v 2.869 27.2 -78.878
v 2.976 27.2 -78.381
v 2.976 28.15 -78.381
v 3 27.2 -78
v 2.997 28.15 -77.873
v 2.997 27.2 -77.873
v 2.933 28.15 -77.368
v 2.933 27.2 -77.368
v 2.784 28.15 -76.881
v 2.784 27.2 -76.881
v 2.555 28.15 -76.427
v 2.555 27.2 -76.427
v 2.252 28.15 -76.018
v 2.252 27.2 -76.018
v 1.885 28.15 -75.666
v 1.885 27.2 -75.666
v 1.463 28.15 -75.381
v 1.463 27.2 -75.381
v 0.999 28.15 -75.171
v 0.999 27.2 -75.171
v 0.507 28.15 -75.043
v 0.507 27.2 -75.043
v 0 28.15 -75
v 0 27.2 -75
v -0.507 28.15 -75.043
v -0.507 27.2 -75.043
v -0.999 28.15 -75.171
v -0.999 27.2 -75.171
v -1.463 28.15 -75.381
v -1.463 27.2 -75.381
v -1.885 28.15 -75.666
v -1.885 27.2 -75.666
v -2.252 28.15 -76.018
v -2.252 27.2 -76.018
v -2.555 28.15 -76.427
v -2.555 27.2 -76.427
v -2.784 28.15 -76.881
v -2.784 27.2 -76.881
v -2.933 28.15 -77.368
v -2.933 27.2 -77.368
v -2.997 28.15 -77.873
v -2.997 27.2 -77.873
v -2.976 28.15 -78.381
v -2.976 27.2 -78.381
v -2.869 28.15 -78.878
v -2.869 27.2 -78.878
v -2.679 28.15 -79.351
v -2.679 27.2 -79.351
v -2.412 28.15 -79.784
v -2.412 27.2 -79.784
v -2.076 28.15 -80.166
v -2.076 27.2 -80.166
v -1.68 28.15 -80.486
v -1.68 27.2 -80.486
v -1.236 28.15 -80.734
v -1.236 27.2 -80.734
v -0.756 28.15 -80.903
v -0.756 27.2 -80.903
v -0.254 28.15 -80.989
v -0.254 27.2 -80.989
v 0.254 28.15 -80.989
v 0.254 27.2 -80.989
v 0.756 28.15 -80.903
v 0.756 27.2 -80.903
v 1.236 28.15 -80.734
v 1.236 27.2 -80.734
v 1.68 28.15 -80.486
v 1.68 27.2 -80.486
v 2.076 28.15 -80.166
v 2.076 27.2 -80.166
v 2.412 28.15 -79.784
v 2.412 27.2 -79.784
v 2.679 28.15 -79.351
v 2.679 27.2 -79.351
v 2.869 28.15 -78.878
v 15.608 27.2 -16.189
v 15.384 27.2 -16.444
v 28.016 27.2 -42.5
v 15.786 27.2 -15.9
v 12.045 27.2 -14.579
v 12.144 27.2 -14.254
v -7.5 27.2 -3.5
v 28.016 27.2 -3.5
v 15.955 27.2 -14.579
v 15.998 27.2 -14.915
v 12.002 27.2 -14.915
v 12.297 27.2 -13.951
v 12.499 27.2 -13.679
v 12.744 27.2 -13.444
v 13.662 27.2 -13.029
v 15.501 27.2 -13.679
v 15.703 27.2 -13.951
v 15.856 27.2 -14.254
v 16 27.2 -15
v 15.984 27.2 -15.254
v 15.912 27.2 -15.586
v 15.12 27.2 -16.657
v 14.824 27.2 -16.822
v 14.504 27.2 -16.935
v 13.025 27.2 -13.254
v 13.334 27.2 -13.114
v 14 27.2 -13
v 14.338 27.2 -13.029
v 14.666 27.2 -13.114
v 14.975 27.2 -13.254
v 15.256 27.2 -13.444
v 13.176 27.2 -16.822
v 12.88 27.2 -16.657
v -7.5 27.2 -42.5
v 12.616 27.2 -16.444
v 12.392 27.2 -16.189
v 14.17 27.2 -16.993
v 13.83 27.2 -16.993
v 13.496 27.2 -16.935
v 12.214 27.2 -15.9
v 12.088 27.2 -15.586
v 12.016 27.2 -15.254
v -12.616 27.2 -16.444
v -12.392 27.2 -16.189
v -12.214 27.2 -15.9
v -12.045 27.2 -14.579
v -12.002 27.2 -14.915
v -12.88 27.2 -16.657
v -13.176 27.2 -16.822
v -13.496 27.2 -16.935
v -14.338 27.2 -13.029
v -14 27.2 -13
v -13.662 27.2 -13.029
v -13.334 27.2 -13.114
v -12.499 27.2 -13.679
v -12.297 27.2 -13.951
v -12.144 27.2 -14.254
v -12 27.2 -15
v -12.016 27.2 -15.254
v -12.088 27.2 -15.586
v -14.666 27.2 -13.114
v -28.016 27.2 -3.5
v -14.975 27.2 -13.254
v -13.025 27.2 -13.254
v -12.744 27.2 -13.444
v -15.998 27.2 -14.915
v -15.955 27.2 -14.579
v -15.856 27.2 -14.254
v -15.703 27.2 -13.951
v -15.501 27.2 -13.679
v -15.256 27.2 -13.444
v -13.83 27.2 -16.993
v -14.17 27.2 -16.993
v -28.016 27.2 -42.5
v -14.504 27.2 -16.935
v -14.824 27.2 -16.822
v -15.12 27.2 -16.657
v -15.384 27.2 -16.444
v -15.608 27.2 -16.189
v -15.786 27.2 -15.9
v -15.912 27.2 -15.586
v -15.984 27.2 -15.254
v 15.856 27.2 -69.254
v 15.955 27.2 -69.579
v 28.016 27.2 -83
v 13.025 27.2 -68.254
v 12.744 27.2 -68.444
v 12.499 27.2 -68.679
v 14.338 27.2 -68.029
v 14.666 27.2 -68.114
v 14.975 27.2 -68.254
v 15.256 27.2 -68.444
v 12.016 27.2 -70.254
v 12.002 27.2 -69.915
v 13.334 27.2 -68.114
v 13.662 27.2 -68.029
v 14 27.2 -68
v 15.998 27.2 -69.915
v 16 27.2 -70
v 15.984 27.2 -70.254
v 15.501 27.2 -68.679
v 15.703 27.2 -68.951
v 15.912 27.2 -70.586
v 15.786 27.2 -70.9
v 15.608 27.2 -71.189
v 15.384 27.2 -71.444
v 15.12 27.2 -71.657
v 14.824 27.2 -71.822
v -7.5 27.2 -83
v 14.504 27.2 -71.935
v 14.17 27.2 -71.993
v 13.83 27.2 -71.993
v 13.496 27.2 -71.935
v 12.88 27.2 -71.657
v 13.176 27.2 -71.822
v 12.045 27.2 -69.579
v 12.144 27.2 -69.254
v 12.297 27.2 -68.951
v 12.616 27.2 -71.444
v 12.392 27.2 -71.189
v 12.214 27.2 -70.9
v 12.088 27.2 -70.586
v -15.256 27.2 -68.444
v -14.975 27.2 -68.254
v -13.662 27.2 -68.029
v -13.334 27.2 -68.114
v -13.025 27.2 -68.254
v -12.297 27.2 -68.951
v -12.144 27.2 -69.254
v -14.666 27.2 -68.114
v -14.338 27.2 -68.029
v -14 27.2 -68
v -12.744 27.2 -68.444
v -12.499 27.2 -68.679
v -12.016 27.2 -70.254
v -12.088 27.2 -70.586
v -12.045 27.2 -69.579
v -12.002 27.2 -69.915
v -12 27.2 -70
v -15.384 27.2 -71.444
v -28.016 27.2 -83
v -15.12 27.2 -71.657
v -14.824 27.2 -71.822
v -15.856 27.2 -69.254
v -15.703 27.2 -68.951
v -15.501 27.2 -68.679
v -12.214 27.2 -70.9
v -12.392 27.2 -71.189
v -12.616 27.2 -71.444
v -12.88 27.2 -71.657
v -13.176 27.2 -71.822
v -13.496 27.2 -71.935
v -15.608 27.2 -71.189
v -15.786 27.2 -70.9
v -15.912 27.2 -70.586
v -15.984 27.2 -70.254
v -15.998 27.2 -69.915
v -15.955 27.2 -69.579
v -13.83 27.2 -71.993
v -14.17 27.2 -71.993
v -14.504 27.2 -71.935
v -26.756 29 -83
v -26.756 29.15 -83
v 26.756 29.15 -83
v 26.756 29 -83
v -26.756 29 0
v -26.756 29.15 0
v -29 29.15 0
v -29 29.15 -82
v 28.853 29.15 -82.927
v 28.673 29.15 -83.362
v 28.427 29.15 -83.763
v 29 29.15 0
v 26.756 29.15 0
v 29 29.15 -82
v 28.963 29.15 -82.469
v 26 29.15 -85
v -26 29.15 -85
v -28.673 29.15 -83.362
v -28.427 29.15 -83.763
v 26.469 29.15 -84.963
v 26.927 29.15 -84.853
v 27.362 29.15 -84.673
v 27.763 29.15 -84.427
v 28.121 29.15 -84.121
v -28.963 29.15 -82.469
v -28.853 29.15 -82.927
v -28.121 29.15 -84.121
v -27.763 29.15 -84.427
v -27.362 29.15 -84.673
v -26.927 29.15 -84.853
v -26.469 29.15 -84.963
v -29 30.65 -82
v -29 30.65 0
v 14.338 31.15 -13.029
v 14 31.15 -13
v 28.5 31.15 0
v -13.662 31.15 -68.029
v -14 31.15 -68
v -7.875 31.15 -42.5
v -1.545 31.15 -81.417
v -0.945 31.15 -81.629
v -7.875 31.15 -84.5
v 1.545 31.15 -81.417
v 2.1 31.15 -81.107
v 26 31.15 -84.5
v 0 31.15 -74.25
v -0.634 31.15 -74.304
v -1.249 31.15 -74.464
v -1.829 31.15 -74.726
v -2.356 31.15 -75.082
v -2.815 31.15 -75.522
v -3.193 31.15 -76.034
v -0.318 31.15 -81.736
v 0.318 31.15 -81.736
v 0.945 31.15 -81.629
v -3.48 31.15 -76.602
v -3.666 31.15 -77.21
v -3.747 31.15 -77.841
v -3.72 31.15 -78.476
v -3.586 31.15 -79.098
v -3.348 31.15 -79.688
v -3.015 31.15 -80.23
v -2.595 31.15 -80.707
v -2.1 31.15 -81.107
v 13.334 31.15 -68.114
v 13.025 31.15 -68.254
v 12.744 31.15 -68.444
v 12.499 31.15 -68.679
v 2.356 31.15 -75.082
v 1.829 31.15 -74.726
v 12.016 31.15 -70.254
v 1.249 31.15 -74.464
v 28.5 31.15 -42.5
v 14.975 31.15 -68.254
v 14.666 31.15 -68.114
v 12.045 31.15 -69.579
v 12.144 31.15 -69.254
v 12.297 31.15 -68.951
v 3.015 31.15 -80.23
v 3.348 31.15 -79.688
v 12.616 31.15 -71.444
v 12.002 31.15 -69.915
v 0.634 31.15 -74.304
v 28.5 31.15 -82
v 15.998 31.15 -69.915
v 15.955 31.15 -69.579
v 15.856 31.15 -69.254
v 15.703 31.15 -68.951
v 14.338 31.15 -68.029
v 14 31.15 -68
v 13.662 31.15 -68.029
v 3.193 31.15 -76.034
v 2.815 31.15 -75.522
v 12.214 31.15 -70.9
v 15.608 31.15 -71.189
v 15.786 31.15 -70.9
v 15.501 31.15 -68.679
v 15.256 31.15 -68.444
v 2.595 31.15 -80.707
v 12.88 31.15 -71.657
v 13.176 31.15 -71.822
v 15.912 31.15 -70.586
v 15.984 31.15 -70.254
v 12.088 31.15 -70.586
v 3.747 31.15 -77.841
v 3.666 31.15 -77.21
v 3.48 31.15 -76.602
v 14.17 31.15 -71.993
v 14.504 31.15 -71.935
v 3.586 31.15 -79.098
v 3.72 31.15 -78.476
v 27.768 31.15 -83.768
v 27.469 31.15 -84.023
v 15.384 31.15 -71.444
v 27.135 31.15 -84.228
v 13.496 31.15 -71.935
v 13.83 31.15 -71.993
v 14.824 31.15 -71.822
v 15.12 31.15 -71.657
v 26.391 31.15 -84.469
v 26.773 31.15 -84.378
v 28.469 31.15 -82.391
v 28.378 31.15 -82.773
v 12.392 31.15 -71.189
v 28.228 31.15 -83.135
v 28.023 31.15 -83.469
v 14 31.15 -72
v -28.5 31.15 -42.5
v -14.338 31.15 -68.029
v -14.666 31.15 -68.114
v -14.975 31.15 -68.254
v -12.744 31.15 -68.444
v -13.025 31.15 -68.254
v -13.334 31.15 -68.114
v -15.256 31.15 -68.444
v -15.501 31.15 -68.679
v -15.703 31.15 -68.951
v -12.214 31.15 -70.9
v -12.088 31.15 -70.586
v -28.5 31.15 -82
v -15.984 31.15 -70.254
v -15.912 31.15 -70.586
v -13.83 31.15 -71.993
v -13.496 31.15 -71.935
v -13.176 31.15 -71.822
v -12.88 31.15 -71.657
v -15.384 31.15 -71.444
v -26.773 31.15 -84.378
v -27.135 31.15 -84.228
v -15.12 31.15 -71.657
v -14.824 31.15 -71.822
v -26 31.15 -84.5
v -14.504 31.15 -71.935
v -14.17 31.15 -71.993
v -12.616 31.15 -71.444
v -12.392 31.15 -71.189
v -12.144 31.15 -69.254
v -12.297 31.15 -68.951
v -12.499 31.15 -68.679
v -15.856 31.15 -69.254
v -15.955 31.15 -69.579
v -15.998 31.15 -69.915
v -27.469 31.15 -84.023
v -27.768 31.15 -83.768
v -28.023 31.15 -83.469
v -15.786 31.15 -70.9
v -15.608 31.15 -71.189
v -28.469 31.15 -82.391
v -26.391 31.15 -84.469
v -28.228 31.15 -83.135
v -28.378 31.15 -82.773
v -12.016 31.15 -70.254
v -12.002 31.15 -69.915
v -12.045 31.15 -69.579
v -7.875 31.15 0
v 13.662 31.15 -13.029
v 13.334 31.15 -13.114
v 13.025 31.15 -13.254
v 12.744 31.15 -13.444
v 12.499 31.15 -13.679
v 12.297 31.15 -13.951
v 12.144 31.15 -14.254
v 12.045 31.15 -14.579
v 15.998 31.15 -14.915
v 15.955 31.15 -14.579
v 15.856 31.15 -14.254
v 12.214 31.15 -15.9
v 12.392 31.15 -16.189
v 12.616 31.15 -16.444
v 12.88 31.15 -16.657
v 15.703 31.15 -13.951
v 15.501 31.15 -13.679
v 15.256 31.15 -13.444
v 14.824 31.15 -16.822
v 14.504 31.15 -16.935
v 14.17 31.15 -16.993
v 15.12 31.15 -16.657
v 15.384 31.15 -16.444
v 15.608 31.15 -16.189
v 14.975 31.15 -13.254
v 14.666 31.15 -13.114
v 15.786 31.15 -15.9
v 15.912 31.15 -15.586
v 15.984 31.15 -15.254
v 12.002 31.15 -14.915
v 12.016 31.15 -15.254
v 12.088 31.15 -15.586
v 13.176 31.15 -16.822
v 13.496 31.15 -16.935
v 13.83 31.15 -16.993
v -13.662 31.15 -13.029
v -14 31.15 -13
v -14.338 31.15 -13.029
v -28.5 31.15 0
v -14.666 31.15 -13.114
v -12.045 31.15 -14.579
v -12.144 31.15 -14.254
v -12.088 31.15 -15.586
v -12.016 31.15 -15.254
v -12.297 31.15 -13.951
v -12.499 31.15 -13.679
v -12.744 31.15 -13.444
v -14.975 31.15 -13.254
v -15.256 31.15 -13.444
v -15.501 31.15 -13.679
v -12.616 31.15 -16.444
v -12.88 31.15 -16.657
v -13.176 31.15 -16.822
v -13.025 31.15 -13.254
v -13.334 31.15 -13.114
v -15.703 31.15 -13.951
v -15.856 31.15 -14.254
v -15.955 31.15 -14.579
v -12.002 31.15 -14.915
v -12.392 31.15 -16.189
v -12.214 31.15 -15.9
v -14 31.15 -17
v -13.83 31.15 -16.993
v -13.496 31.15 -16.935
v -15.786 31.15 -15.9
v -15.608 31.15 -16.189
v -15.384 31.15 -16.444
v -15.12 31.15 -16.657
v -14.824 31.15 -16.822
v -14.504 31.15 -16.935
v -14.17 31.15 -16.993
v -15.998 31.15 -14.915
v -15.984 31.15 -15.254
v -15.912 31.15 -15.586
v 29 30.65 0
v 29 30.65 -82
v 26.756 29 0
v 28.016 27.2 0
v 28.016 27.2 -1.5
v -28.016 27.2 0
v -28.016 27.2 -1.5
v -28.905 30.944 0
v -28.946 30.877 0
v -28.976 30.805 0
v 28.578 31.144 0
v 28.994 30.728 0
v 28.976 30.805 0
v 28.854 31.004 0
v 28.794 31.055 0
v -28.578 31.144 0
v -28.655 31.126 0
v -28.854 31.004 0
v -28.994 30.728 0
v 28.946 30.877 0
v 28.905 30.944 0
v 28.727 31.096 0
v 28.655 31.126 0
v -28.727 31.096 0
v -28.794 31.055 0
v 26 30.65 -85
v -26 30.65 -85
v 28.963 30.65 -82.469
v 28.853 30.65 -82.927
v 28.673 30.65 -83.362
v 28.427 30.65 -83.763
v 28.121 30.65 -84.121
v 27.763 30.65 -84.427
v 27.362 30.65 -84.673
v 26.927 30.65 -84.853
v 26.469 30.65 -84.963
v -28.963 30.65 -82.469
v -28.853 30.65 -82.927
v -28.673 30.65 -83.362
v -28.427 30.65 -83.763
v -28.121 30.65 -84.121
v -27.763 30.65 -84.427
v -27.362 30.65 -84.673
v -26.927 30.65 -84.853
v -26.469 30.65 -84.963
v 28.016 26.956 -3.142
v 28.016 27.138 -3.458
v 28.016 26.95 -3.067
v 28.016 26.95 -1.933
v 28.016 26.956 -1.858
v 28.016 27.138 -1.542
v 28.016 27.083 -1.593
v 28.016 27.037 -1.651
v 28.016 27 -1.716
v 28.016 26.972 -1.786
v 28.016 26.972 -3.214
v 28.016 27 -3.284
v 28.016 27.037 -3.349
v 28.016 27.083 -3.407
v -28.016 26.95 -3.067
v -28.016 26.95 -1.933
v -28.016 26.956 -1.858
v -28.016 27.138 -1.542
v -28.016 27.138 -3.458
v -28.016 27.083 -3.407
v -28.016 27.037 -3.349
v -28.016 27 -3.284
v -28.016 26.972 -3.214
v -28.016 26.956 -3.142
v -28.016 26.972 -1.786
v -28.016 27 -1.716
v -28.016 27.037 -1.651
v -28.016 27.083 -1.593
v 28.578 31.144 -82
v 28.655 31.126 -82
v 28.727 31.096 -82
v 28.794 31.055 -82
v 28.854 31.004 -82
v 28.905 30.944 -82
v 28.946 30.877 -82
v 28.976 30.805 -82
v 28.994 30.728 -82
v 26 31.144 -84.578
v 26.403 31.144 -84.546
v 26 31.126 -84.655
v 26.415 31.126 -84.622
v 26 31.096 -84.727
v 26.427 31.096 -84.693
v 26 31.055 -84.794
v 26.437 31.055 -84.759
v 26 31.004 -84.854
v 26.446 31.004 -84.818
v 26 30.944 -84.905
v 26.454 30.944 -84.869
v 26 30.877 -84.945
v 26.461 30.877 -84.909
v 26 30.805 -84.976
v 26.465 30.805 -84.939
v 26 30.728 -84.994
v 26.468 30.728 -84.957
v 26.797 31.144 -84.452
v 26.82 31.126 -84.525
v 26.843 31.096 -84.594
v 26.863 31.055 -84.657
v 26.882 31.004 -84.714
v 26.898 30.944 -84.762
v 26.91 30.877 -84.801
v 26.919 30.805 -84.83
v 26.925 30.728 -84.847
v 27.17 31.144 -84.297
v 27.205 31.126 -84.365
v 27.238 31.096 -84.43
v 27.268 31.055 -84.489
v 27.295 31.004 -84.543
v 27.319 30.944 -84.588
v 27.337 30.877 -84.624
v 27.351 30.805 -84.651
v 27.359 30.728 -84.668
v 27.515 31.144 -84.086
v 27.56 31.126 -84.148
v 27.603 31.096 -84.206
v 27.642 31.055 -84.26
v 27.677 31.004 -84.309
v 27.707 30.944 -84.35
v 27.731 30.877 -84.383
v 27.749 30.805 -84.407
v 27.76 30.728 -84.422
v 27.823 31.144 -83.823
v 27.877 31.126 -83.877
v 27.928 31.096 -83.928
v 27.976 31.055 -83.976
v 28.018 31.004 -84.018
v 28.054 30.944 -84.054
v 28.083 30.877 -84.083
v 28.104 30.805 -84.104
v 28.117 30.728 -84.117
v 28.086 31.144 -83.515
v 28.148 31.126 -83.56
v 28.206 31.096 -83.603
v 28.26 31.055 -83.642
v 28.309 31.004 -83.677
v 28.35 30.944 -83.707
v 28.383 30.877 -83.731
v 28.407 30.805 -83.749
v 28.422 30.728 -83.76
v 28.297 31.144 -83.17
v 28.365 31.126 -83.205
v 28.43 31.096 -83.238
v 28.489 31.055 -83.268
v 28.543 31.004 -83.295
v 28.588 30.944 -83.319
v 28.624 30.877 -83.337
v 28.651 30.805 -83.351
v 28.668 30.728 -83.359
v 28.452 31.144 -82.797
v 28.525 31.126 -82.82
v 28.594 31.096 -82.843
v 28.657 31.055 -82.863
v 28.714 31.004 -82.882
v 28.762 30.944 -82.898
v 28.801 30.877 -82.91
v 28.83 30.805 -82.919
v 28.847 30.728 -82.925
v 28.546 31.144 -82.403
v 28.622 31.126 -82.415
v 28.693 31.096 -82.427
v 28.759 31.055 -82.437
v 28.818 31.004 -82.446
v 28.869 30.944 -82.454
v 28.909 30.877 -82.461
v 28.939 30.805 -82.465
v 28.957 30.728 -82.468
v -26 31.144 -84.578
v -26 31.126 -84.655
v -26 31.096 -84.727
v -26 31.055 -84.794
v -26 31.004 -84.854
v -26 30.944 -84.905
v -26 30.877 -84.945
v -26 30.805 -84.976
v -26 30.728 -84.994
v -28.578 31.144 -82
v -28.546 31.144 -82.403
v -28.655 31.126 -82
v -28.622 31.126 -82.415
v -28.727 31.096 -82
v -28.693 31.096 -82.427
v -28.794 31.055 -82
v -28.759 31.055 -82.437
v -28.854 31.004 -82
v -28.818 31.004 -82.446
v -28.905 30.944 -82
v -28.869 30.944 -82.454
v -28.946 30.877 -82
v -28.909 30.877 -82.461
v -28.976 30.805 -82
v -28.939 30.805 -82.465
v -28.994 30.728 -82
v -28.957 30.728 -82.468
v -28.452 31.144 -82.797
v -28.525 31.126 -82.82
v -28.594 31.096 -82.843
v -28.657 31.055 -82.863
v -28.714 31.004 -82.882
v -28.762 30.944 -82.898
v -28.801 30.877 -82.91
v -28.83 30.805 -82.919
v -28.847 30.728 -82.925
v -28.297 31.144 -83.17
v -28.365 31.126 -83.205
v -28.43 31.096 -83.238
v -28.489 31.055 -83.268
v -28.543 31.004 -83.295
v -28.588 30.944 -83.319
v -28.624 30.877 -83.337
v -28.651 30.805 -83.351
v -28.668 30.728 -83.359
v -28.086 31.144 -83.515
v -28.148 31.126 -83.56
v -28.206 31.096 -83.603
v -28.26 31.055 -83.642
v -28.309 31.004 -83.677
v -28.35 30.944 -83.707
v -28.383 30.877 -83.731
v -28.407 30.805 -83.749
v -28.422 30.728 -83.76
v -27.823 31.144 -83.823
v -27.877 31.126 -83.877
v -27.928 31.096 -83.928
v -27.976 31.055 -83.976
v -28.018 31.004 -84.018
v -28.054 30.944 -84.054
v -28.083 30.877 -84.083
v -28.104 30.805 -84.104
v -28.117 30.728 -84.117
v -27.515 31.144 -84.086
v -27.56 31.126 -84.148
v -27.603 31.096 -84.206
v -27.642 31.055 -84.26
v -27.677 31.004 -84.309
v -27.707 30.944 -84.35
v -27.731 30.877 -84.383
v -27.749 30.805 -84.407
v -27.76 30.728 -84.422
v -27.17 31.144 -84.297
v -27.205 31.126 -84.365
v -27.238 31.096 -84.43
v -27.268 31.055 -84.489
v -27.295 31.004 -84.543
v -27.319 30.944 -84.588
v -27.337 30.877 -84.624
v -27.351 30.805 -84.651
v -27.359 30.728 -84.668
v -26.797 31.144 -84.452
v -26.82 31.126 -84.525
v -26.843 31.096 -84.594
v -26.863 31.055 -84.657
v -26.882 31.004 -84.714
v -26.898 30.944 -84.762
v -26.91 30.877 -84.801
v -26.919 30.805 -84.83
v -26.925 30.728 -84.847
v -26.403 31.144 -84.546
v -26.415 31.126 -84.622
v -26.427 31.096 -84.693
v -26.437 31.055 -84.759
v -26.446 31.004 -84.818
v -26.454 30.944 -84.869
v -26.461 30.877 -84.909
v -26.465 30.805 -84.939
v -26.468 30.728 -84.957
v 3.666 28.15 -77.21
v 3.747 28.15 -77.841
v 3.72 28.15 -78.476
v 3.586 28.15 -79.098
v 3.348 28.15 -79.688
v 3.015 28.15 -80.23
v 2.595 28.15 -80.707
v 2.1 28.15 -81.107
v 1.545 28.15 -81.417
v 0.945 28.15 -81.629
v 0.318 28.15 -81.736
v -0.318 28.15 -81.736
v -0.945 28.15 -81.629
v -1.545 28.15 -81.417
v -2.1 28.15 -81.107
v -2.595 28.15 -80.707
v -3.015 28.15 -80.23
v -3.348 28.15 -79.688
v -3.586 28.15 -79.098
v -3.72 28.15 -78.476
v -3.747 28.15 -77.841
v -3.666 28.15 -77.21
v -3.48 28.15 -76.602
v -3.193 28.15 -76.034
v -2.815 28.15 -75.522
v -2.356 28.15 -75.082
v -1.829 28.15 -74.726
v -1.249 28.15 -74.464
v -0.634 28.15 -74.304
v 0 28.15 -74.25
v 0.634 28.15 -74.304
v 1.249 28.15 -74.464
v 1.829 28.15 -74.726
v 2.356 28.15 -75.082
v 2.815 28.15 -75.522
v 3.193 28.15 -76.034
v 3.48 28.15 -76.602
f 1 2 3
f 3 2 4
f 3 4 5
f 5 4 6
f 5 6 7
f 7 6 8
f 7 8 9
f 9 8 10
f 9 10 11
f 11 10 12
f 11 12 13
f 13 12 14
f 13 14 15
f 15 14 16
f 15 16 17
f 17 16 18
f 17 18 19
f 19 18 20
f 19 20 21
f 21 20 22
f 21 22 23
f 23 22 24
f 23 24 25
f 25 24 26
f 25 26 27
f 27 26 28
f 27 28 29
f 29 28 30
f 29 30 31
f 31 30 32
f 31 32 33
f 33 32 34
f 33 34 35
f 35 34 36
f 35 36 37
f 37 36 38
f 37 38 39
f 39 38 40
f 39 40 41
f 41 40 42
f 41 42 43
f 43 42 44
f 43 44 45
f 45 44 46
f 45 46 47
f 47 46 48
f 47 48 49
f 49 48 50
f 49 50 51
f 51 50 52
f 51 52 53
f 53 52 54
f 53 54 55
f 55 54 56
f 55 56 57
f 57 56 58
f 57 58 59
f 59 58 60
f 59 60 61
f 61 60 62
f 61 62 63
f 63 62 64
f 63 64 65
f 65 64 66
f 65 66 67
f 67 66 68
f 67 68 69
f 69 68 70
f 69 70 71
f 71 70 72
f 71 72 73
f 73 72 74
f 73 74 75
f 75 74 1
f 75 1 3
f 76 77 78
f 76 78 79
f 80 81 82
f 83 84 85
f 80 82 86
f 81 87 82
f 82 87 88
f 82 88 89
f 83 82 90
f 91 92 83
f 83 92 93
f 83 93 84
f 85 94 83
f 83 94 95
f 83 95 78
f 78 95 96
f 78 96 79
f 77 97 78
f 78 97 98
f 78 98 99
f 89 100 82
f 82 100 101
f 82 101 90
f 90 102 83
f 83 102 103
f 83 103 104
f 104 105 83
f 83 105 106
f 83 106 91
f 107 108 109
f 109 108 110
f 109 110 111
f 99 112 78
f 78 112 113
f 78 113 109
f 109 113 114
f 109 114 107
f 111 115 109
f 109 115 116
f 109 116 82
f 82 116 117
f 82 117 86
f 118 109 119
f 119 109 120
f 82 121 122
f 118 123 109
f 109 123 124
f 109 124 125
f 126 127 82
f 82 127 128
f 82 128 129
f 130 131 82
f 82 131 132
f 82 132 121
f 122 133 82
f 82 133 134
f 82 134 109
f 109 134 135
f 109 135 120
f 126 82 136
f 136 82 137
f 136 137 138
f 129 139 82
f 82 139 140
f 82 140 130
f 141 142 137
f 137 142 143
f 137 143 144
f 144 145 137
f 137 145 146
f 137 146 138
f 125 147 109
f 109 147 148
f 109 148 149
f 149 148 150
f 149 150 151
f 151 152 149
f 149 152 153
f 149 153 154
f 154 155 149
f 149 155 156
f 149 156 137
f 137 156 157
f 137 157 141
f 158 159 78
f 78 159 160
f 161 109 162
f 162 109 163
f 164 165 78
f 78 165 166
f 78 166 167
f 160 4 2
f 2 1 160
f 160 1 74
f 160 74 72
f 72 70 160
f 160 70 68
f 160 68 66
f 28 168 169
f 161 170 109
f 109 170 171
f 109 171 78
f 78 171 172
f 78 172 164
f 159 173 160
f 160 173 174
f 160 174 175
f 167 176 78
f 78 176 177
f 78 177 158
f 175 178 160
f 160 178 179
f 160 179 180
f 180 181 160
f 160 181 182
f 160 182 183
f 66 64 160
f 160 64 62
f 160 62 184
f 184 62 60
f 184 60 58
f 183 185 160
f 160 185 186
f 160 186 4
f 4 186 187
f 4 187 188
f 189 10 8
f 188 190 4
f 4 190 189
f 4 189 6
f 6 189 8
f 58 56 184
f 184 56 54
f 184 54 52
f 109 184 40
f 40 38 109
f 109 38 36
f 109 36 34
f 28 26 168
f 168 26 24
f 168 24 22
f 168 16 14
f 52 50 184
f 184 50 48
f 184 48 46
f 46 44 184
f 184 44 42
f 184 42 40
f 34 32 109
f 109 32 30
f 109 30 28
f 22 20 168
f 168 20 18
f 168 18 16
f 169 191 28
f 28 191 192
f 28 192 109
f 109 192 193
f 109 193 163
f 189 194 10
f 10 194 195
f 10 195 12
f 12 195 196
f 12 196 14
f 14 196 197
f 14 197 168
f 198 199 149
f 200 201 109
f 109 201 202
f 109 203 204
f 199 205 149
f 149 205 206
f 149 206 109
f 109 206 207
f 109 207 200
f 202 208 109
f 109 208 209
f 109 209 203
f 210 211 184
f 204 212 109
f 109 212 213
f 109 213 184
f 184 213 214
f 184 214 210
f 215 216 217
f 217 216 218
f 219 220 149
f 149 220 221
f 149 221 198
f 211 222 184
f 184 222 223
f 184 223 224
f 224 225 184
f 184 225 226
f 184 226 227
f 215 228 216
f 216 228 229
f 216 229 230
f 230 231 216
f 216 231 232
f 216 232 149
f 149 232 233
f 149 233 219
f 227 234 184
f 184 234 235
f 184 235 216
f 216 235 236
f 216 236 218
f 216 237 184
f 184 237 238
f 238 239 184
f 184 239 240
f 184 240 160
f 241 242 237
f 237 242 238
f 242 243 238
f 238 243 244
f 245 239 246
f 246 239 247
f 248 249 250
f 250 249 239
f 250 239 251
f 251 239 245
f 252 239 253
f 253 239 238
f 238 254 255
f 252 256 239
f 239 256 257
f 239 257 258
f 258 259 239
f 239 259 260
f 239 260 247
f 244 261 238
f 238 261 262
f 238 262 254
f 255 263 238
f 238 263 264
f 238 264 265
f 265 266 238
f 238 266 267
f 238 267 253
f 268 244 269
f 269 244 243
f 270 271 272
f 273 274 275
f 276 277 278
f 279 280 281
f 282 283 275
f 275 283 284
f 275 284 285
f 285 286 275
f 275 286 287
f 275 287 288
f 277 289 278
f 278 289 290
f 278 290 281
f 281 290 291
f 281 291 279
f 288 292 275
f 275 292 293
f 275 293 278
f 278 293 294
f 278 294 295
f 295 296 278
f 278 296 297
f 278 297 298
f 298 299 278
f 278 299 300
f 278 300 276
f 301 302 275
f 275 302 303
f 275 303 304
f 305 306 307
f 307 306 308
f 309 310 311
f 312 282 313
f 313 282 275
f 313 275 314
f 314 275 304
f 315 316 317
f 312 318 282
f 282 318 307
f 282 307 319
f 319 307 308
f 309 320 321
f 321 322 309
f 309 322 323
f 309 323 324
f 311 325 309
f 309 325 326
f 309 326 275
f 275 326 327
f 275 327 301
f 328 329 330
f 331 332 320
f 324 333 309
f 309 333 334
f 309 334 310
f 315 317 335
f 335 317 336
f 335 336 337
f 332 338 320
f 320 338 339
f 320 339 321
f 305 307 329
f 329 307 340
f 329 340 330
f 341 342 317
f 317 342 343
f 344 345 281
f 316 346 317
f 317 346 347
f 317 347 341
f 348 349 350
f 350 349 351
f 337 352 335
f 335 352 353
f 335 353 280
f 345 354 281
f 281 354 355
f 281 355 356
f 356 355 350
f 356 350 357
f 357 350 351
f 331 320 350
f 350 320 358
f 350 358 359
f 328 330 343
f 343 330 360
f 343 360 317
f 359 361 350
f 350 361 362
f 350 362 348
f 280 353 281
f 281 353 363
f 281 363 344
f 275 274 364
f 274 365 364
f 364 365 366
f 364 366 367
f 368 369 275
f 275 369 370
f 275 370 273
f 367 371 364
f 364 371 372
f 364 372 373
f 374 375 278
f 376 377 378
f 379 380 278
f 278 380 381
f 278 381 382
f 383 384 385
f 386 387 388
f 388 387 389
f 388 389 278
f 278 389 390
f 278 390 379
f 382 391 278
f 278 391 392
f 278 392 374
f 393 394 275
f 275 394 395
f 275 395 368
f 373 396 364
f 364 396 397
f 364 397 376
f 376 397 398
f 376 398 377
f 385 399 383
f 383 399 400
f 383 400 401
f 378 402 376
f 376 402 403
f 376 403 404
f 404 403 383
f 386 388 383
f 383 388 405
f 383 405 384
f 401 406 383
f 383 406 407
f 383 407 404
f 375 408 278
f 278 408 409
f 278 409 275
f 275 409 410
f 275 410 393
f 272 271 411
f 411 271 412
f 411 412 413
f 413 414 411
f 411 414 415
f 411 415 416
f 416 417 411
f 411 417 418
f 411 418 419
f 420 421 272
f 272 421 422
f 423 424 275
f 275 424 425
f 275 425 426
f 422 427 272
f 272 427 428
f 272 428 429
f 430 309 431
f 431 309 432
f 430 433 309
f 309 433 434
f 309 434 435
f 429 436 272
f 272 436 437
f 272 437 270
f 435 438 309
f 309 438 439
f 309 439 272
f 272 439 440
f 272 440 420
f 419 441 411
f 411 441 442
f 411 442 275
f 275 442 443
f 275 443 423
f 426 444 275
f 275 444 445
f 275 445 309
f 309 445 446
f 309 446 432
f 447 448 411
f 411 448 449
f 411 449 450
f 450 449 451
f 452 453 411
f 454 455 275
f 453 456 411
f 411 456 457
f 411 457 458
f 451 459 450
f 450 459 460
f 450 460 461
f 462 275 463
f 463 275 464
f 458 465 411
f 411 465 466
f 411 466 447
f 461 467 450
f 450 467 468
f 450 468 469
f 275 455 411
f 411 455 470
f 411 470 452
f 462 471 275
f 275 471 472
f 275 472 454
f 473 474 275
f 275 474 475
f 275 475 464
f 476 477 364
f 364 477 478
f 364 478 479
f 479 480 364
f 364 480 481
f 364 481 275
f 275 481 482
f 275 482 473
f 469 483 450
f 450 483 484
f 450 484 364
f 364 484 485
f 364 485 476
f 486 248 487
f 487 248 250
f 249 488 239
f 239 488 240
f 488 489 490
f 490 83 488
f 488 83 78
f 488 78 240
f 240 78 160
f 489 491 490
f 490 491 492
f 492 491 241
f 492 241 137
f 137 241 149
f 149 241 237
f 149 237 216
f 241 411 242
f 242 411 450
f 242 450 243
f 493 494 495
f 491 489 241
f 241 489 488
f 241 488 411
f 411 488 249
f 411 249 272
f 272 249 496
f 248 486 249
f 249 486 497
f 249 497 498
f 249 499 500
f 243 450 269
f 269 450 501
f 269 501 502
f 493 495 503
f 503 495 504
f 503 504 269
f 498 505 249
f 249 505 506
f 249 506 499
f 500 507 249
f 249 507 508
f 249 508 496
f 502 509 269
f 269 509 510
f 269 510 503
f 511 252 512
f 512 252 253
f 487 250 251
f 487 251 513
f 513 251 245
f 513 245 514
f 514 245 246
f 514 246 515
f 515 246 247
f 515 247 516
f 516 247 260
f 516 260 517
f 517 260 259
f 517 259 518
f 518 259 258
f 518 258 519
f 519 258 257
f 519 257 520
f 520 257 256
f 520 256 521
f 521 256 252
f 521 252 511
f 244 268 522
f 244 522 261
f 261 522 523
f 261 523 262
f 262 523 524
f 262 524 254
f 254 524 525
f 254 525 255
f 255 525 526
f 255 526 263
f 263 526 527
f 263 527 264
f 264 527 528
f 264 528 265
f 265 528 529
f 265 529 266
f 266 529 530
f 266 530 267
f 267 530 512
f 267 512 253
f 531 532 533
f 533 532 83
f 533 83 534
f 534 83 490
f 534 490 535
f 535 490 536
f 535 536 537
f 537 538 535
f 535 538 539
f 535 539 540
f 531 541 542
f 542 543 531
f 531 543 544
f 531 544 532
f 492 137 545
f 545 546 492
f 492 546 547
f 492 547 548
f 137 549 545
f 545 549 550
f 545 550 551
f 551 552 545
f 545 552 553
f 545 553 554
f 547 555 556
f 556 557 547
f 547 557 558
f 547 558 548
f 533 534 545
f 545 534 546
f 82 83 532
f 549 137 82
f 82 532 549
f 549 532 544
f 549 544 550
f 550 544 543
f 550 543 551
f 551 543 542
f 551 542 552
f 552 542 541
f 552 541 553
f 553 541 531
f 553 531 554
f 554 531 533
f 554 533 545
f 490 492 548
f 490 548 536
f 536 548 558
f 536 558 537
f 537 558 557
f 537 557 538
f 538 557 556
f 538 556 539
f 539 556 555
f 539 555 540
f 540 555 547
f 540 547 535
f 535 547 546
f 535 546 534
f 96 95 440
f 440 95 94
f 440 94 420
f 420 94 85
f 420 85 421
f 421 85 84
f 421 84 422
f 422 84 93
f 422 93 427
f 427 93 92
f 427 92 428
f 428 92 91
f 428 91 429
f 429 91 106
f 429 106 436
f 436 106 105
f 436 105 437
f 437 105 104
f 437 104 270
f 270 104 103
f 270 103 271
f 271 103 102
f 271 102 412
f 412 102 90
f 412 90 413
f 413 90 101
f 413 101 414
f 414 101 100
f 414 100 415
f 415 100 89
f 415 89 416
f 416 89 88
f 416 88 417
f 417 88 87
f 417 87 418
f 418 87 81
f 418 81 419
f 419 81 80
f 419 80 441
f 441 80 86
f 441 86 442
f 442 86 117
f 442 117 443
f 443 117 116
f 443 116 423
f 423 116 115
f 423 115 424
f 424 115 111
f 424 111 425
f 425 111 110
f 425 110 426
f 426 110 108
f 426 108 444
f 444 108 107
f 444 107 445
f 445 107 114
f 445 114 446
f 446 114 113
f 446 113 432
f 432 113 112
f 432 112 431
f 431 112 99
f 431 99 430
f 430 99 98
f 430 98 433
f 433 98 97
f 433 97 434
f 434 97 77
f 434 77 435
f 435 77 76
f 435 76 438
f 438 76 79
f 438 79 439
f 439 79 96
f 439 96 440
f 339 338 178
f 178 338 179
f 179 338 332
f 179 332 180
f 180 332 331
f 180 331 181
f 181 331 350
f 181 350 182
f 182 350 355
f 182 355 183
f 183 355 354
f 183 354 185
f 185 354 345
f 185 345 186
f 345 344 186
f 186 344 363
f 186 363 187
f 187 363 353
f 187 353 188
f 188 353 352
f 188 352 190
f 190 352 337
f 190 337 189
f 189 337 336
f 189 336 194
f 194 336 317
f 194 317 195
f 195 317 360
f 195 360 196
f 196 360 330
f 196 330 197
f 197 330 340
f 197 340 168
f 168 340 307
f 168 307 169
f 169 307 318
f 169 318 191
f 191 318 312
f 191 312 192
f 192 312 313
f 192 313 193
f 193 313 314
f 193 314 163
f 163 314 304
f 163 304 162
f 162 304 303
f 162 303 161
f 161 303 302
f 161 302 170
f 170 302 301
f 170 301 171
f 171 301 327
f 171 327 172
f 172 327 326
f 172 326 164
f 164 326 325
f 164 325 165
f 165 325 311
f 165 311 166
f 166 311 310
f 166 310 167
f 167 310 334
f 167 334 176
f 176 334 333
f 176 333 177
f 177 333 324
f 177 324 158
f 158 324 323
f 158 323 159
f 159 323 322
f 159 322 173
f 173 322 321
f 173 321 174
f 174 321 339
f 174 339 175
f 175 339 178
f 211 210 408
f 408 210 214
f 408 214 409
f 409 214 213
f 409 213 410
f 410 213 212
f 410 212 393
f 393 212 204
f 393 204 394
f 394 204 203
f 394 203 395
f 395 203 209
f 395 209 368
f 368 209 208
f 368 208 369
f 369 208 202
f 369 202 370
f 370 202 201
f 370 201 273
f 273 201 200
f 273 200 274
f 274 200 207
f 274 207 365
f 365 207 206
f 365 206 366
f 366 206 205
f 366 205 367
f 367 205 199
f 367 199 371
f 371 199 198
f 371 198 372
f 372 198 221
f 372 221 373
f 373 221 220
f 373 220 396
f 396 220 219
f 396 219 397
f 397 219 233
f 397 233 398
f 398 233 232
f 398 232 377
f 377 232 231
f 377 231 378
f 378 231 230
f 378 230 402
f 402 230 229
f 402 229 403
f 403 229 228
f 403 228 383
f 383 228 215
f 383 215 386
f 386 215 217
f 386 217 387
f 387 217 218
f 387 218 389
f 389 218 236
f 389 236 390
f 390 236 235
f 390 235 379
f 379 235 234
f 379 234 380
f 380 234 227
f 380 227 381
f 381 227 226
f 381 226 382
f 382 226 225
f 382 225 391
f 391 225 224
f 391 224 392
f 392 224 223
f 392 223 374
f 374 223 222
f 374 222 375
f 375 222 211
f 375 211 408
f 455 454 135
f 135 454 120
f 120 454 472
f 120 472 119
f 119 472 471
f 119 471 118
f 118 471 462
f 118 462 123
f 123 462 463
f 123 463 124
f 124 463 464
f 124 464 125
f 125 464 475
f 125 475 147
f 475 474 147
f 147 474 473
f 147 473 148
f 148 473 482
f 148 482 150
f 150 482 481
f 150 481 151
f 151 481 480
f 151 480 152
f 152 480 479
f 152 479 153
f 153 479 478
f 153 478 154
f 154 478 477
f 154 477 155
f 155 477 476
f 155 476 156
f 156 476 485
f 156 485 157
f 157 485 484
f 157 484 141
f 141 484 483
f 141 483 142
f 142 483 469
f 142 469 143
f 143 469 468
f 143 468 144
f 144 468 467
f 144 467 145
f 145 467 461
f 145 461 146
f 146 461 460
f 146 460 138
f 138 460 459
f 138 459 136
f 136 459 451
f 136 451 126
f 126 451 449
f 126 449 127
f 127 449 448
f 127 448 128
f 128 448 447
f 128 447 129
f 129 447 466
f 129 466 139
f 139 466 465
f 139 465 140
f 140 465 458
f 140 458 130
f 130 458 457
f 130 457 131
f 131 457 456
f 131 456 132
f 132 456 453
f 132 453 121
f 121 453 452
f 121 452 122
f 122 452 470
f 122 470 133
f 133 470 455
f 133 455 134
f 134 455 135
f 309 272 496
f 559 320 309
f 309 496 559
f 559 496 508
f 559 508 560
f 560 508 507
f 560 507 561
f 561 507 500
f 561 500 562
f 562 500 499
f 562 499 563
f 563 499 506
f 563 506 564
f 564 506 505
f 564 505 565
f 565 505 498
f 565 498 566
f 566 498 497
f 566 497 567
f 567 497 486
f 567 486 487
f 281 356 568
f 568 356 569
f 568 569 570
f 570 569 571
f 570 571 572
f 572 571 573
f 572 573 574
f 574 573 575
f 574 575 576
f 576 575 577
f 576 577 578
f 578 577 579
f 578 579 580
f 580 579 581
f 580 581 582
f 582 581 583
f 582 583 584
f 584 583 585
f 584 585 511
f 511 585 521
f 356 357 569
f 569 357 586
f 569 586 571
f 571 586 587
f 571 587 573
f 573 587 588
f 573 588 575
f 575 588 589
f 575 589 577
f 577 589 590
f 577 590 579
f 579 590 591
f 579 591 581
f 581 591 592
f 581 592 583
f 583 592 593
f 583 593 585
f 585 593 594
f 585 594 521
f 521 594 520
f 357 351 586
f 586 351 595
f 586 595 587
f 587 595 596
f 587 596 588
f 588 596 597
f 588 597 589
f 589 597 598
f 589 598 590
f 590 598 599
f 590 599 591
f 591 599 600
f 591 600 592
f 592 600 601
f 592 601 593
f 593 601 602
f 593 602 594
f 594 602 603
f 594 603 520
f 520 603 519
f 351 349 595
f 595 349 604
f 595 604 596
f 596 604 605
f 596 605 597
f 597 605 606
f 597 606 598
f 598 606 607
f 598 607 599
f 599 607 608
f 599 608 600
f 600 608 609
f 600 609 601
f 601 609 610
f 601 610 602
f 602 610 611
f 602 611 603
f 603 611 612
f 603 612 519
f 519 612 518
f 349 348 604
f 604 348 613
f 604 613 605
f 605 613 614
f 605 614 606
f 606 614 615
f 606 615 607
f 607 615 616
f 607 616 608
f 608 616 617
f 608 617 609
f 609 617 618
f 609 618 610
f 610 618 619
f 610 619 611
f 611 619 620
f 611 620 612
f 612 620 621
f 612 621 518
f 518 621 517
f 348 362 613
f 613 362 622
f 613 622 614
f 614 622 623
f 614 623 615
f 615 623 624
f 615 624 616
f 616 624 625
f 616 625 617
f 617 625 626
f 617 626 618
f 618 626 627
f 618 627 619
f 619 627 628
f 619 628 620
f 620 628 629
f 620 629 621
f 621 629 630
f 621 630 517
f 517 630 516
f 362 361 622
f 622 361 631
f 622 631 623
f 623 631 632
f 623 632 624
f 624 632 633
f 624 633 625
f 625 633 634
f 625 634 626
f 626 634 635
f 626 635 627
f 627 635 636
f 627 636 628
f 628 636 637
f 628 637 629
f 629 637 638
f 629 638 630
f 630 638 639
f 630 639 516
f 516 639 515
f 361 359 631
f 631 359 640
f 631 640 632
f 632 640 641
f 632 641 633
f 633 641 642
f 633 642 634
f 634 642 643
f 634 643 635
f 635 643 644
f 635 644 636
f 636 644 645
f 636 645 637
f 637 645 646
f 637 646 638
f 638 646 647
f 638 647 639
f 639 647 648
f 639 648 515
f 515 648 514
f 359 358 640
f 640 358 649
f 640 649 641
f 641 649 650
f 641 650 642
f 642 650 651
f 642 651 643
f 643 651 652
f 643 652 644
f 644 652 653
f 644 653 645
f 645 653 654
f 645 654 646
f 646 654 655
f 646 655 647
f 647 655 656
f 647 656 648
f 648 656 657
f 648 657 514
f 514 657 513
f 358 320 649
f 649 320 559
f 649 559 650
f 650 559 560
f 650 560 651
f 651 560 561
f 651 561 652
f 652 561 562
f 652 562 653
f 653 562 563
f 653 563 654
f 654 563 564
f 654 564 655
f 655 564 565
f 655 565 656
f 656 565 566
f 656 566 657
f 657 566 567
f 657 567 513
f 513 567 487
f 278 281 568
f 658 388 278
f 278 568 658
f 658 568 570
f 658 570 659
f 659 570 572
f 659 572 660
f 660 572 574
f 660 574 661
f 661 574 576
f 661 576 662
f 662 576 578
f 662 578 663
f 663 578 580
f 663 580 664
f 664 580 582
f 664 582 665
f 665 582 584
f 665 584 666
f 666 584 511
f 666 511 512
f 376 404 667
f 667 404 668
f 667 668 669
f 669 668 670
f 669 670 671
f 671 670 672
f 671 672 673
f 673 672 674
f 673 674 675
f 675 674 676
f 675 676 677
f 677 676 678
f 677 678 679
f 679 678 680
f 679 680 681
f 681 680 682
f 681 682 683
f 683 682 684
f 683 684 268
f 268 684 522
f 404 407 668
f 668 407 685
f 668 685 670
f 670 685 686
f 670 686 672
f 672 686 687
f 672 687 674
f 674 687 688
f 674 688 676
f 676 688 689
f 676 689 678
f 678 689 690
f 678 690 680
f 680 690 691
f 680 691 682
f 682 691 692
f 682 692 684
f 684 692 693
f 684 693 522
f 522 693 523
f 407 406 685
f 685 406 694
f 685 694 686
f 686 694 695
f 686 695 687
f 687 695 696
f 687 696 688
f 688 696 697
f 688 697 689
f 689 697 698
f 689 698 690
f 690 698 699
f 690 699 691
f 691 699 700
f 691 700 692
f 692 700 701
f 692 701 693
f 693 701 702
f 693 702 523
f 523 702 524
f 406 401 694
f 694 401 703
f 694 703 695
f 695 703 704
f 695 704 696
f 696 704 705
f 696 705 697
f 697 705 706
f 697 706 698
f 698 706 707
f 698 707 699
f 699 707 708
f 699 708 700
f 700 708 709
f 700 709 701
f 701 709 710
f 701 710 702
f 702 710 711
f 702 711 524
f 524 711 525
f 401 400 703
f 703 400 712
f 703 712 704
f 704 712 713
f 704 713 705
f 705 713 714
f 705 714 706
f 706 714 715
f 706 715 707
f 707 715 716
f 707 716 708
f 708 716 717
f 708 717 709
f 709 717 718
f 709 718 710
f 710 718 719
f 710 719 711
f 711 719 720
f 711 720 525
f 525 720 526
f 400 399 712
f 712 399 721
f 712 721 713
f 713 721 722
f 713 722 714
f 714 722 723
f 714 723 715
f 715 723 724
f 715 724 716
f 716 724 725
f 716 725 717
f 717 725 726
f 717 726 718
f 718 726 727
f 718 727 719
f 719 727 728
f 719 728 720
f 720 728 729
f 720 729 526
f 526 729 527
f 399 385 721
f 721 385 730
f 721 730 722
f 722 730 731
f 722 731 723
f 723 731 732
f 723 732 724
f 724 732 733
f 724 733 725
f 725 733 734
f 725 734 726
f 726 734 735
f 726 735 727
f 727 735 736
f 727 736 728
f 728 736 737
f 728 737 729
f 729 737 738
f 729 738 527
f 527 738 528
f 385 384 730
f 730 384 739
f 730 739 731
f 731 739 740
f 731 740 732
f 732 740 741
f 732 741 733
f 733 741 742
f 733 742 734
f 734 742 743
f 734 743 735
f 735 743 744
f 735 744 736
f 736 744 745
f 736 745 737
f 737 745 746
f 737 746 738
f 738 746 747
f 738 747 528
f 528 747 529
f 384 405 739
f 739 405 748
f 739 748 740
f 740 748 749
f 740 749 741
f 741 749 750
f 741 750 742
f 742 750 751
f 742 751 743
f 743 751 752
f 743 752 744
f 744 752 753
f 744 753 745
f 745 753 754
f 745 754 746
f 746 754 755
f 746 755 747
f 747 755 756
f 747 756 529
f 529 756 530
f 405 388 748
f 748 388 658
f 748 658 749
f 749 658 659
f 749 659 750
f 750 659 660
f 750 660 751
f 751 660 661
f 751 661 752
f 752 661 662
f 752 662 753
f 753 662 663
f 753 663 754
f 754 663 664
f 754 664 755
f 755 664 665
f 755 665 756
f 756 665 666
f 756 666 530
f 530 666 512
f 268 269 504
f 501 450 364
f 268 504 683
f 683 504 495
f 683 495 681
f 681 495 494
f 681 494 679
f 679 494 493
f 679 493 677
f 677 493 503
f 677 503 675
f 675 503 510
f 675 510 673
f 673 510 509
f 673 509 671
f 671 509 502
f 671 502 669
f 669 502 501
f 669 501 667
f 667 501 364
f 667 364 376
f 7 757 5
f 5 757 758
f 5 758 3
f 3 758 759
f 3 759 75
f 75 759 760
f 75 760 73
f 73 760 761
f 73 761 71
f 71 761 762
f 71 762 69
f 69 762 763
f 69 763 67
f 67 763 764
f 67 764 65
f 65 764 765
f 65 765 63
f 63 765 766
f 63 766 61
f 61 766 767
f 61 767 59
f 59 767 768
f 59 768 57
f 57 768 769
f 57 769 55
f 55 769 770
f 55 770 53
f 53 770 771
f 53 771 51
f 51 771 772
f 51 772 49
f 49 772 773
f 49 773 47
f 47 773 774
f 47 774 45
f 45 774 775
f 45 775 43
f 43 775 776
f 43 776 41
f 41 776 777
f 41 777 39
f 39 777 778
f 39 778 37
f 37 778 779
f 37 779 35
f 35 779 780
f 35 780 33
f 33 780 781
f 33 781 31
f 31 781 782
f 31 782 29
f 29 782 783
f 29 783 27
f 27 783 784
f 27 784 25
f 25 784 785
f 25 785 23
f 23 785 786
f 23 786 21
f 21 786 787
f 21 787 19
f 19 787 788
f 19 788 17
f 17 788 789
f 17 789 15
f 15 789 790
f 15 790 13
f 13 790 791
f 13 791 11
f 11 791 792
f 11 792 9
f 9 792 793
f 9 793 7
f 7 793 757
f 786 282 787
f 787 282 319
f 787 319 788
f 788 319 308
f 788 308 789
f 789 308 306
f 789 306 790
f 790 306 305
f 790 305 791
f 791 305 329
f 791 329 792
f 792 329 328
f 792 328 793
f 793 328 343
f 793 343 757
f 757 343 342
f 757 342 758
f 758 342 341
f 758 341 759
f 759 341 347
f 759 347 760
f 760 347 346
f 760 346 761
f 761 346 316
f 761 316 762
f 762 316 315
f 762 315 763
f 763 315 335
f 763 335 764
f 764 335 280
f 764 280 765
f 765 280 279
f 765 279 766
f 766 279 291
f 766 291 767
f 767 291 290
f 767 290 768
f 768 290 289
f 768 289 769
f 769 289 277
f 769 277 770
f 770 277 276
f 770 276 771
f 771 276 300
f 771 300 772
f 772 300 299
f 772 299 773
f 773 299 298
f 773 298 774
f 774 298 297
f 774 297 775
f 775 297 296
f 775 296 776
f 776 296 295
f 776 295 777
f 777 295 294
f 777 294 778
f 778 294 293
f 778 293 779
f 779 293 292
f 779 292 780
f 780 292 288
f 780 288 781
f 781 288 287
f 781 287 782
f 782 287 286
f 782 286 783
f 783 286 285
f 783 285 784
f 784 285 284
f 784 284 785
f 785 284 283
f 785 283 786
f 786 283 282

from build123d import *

# Parameters (mm, degrees)
BOSS_EXTRUDE1_DEPTH = 83
SKETCH3_W           = 58
SKETCH3_H           = 2
BOSS_EXTRUDE2_DEPTH = 2
FILLET1_R           = 3
SKETCH4_W           = 56.032437302
SKETCH4_H           = 2
BOSS_EXTRUDE3_DEPTH = 0.25
FILLET2_R           = 0.5
CUT_EXTRUDE1_REACH  = 91.909
SKETCH5_R           = 3
CUT_EXTRUDE2_REACH  = 91.909
SKETCH7_R           = 2
FILLET3_R           = 0.5
SKETCH8_R           = 3.75
CUT_EXTRUDE3_DEPTH  = 3


with BuildPart() as part:
    # Sketch1 → Boss-Extrude1 (new body)
    with BuildSketch(Plane.XY):
        Polygon((-26.755845082, 29), (-28.016218651, 27.2), (28.016218651, 27.2), (26.755845082, 29), (26.755845082, 29.15), (29, 29.15), (29, 31.15), (-29, 31.15), (-29, 29.15), (-26.755845082, 29.15), align=None)
    extrude(amount=-BOSS_EXTRUDE1_DEPTH)

    # Sketch3 → Boss-Extrude2 (add)
    with BuildSketch(Plane(origin=(0, 0, -83), x_dir=(-1, 0, 0), z_dir=(0, 0, -1))):
        with Locations((0, 30.15)):
            Rectangle(SKETCH3_W, SKETCH3_H)
    extrude(amount=BOSS_EXTRUDE2_DEPTH)

    # Fillet1
    fillet1_edges = [part.edges().sort_by_distance(p)[0] for p in [
        (-29, 30.15, -85),
        (29, 30.15, -85),
    ]]
    fillet(fillet1_edges, radius=FILLET1_R)

    # Sketch4 → Boss-Extrude3 (add)
    with BuildSketch(Plane.XZ.offset(-27.2)):
        with Locations((0, -2.5)):
            Rectangle(SKETCH4_W, SKETCH4_H)
    extrude(amount=BOSS_EXTRUDE3_DEPTH)

    # Fillet2
    # the kernel refuses this fillet: 0.5 mm, written as the material it takes off along each edge
    with BuildSketch(Plane(origin=(-29.098750406, 26.95, -3.5), x_dir=(0, 1, 0), z_dir=(1, 0, 0)), Plane(origin=(29.098750406, 26.95, -1.5), x_dir=(0, 1, 0), z_dir=(-1, 0, 0))) as fillet2_piece_1:
        with BuildLine():
            CenterArc((0.5, 0.433012702), FILLET2_R, 180, 60)
            Line((0, 0.433012702), (-0.01, 0.433012702))
            Line((-0.01, 0.433012702), (-0.01, 0))
            Line((-0.01, 0), (0, -0.01))
            ThreePointArc((0, -0.01), (0.125, -0.01), (0.245, -0.008660254))
            Line((0.245, -0.008660254), (0.25, 0))
        make_face()
    extrude(amount=58.197500812, mode=Mode.SUBTRACT)

    # Sketch5 → Cut-Extrude1 (cut, up to next)
    with BuildSketch(Plane(origin=(0, 31.15, 0), x_dir=(1, 0, 0), z_dir=(0, 1, 0)), mode=Mode.PRIVATE) as cut_extrude1_sk1:
        with Locations(Location((0, 78, 0), (0, 0, 270))):
            Circle(SKETCH5_R)
    cut_extrude1_tool1 = extrude(cut_extrude1_sk1.sketch, amount=-CUT_EXTRUDE1_REACH, mode=Mode.PRIVATE) & part.part
    add(cut_extrude1_tool1.solids().sort_by_distance((0, 31.15, -78))[0], mode=Mode.SUBTRACT)

    # Sketch7 → Cut-Extrude2 (cut, up to next)
    with BuildSketch(Plane(origin=(0, 31.15, 0), x_dir=(1, 0, 0), z_dir=(0, 1, 0)), mode=Mode.PRIVATE) as cut_extrude2_sk1:
        with Locations(Location((14, 15, 0), (0, 0, 270))):
            Circle(SKETCH7_R)
    cut_extrude2_tool1 = extrude(cut_extrude2_sk1.sketch, amount=-CUT_EXTRUDE2_REACH, mode=Mode.PRIVATE) & part.part
    # Sketch7 → Cut-Extrude2 (cut, up to next)
    with BuildSketch(Plane(origin=(0, 31.15, 0), x_dir=(1, 0, 0), z_dir=(0, 1, 0)), mode=Mode.PRIVATE) as cut_extrude2_sk2:
        with Locations((14, 70)):
            Circle(SKETCH7_R)
    cut_extrude2_tool2 = extrude(cut_extrude2_sk2.sketch, amount=-CUT_EXTRUDE2_REACH, mode=Mode.PRIVATE) & part.part
    # Sketch7 → Cut-Extrude2 (cut, up to next)
    with BuildSketch(Plane(origin=(0, 31.15, 0), x_dir=(1, 0, 0), z_dir=(0, 1, 0)), mode=Mode.PRIVATE) as cut_extrude2_sk3:
        with Locations(Location((-14, 70, 0), (0, 0, 270))):
            Circle(SKETCH7_R)
    cut_extrude2_tool3 = extrude(cut_extrude2_sk3.sketch, amount=-CUT_EXTRUDE2_REACH, mode=Mode.PRIVATE) & part.part
    # Sketch7 → Cut-Extrude2 (cut, up to next)
    with BuildSketch(Plane(origin=(0, 31.15, 0), x_dir=(1, 0, 0), z_dir=(0, 1, 0)), mode=Mode.PRIVATE) as cut_extrude2_sk4:
        with Locations((-14, 15)):
            Circle(SKETCH7_R)
    cut_extrude2_tool4 = extrude(cut_extrude2_sk4.sketch, amount=-CUT_EXTRUDE2_REACH, mode=Mode.PRIVATE) & part.part
    add(cut_extrude2_tool1.solids().sort_by_distance((14, 31.15, -15))[0], mode=Mode.SUBTRACT)
    add(cut_extrude2_tool2.solids().sort_by_distance((14, 31.15, -70))[0], mode=Mode.SUBTRACT)
    add(cut_extrude2_tool3.solids().sort_by_distance((-14, 31.15, -70))[0], mode=Mode.SUBTRACT)
    add(cut_extrude2_tool4.solids().sort_by_distance((-14, 31.15, -15))[0], mode=Mode.SUBTRACT)

    # Fillet3
    fillet3_edges = [part.edges().sort_by_distance(p)[0] for p in [
        (29, 31.15, -41),
        (0, 31.15, -85),
        (-29, 31.15, -41),
        (-28.121320344, 31.15, -84.121320344),
        (28.121320344, 31.15, -84.121320344),
    ]]
    fillet(fillet3_edges, radius=FILLET3_R)

    # Sketch8 → Cut-Extrude3 (cut)
    with BuildSketch(Plane(origin=(0, 31.15, 0), x_dir=(1, 0, 0), z_dir=(0, 1, 0))):
        with Locations(Location((0, 78, 0), (0, 0, 270))):
            Circle(SKETCH8_R)
    extrude(amount=-CUT_EXTRUDE3_DEPTH, mode=Mode.SUBTRACT)


solid = part.part
